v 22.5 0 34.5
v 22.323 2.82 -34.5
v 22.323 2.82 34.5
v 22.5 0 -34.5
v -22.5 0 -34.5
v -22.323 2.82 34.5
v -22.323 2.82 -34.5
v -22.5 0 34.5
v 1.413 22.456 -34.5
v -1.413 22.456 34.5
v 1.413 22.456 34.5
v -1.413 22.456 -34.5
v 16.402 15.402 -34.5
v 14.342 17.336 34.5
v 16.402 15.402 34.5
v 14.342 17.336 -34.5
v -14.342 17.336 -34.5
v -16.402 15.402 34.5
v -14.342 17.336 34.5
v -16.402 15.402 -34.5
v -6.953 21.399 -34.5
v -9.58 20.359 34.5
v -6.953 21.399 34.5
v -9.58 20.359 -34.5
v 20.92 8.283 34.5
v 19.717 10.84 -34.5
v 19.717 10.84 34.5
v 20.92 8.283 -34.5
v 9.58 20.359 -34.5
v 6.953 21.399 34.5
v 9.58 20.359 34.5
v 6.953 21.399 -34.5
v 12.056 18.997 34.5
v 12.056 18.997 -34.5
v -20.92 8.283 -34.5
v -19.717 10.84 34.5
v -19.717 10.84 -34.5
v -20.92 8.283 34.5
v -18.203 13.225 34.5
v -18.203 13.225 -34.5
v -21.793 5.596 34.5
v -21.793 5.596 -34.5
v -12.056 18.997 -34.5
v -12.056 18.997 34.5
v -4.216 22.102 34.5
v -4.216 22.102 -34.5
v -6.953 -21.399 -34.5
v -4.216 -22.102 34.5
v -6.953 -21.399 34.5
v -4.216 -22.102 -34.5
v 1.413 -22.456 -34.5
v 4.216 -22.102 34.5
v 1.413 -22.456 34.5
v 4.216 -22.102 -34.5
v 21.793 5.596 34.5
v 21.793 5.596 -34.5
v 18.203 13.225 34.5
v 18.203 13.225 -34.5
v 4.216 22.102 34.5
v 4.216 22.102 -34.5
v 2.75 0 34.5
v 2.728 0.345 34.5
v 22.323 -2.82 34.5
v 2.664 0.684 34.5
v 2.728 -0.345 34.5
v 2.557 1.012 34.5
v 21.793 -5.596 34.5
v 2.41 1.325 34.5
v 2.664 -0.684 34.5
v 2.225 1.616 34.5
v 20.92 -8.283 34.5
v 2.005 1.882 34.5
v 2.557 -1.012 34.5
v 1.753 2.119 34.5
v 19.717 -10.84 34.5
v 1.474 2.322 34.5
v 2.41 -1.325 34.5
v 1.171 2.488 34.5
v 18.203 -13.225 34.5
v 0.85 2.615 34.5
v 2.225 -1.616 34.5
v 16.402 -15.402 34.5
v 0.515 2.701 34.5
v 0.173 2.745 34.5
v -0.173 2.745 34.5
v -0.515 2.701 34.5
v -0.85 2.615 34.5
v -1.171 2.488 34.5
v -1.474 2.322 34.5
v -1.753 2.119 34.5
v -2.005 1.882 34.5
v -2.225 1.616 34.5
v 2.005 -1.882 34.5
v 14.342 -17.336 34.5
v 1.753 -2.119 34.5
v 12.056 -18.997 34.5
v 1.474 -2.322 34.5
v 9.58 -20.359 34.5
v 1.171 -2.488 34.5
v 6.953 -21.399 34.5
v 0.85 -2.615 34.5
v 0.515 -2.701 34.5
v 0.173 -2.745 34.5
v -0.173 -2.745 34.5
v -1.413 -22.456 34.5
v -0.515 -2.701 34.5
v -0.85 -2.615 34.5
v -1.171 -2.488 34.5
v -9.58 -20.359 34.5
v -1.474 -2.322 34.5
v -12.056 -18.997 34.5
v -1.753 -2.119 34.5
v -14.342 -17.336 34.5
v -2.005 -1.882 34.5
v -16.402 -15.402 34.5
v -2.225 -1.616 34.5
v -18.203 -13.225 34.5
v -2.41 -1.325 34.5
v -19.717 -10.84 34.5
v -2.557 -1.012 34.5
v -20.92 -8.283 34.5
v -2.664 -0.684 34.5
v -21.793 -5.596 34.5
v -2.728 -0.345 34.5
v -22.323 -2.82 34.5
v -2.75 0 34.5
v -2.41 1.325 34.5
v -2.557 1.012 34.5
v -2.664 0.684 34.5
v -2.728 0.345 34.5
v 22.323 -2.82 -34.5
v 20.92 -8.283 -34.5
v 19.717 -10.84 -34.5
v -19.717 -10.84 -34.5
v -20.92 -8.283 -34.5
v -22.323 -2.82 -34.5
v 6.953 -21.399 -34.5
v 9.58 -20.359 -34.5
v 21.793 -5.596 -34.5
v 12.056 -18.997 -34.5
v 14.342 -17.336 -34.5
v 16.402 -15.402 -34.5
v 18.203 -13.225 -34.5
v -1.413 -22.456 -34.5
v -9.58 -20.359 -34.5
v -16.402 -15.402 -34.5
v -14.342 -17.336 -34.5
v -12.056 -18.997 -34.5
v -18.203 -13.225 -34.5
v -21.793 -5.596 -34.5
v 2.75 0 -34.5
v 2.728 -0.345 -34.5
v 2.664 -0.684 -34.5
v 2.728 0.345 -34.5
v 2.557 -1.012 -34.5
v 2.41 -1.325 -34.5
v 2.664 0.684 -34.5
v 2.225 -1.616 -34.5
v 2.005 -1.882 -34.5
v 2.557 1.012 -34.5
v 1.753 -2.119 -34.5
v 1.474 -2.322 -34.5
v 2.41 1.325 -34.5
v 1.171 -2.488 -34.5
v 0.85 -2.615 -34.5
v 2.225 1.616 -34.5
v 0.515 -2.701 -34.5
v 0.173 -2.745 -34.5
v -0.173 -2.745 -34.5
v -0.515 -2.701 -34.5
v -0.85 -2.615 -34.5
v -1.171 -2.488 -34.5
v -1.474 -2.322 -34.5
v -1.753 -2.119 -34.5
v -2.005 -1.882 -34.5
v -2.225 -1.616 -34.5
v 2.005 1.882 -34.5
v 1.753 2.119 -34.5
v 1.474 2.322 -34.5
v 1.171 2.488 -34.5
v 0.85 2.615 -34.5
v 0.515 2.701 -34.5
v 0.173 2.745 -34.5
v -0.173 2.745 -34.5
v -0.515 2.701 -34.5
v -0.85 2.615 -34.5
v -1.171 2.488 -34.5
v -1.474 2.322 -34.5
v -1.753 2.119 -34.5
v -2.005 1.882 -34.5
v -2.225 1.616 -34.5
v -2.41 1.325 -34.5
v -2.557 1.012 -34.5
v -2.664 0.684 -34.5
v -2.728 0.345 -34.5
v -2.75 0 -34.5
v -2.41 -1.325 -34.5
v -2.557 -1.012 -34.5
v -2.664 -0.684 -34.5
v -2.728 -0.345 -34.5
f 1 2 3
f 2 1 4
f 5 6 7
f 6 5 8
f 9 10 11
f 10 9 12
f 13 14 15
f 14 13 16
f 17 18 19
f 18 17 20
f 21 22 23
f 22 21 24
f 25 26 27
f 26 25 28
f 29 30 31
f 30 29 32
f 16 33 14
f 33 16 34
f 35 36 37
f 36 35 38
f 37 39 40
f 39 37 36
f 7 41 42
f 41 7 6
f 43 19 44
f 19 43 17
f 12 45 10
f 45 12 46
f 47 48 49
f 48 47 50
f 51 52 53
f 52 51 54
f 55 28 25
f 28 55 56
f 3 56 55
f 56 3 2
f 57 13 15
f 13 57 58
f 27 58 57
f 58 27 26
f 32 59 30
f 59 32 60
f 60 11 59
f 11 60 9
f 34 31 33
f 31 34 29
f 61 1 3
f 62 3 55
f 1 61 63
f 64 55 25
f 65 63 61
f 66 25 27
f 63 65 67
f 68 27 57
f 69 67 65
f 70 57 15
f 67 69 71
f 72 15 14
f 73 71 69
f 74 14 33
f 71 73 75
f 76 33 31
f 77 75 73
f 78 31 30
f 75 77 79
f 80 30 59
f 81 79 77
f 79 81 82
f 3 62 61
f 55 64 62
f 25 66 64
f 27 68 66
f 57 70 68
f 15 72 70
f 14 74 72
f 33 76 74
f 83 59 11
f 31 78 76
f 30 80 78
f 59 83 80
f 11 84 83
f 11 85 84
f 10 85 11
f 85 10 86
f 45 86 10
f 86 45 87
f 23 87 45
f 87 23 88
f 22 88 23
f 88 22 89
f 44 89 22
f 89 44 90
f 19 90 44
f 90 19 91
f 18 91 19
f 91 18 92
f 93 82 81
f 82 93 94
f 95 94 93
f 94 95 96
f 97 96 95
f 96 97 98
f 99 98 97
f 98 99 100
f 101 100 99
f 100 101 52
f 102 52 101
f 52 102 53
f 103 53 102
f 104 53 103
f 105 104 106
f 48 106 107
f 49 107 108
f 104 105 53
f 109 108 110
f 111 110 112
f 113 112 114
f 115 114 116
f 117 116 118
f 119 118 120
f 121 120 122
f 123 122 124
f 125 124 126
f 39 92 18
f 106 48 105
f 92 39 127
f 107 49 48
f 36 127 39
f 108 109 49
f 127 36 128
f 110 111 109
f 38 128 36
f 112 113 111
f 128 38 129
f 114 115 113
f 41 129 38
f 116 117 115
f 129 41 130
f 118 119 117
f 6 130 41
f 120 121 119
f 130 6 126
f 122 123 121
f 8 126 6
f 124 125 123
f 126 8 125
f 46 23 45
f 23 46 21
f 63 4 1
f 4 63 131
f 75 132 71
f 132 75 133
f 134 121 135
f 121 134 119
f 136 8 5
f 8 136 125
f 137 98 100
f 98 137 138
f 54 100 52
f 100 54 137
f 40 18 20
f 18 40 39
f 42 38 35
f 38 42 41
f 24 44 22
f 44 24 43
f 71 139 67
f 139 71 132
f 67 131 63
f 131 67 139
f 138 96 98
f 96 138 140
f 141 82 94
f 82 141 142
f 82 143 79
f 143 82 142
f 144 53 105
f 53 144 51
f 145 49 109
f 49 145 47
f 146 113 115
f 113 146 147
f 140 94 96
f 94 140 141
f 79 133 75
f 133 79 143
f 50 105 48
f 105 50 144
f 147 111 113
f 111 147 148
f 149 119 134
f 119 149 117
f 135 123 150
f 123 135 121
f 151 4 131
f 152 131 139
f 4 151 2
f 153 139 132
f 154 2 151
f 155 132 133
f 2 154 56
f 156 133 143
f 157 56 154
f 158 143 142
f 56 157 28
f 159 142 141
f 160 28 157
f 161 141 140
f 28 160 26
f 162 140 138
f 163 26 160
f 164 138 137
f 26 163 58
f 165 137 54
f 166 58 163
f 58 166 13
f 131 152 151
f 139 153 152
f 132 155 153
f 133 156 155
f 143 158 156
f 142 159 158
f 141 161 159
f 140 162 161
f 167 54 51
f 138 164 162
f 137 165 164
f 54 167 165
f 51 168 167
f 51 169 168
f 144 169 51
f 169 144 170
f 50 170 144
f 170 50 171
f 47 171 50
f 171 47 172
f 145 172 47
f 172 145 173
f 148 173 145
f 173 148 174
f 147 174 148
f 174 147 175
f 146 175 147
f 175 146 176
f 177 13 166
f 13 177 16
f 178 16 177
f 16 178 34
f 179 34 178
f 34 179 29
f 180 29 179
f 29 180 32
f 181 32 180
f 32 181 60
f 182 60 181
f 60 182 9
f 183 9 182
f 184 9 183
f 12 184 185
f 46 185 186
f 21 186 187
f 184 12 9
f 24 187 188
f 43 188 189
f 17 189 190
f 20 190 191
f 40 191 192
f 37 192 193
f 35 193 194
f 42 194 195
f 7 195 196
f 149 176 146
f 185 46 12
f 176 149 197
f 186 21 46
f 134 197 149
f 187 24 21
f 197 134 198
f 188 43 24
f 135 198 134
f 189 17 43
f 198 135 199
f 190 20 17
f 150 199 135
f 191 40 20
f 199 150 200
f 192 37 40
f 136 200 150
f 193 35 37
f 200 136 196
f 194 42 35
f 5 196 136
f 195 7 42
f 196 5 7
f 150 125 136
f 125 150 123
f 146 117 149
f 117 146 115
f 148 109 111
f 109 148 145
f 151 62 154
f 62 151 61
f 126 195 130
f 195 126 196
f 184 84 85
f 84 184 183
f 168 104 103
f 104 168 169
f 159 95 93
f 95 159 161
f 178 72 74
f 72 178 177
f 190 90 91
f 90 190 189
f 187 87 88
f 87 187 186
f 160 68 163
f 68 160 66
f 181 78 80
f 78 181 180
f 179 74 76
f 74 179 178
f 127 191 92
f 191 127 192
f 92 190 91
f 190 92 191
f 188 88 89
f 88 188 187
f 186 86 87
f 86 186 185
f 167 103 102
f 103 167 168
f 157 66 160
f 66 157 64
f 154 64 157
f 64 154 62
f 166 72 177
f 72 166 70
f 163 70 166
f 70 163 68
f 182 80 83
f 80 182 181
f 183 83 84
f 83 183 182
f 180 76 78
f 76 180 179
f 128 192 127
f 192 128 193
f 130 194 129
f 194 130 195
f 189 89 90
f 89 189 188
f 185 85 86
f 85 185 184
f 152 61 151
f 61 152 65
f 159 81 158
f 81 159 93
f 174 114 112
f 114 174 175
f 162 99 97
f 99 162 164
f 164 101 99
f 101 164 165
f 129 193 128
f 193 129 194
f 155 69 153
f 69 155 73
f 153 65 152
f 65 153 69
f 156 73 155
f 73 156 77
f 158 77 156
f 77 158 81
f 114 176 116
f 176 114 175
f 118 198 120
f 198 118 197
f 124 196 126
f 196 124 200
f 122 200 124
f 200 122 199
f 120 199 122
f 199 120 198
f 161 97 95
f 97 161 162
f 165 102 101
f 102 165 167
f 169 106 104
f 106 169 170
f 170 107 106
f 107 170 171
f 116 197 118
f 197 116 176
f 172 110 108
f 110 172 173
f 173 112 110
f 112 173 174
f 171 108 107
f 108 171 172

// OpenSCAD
$fn = 50;


difference() {
	union() {
		translate(v = [0, 0, -34.5000000000]) {
			cylinder(h = 69, r = 22.5000000000);
		}
	}
	union() {
		translate(v = [0, 0, -100.0000000000]) {
			cylinder(h = 200, r = 2.7500000000);
		}
	}
}
